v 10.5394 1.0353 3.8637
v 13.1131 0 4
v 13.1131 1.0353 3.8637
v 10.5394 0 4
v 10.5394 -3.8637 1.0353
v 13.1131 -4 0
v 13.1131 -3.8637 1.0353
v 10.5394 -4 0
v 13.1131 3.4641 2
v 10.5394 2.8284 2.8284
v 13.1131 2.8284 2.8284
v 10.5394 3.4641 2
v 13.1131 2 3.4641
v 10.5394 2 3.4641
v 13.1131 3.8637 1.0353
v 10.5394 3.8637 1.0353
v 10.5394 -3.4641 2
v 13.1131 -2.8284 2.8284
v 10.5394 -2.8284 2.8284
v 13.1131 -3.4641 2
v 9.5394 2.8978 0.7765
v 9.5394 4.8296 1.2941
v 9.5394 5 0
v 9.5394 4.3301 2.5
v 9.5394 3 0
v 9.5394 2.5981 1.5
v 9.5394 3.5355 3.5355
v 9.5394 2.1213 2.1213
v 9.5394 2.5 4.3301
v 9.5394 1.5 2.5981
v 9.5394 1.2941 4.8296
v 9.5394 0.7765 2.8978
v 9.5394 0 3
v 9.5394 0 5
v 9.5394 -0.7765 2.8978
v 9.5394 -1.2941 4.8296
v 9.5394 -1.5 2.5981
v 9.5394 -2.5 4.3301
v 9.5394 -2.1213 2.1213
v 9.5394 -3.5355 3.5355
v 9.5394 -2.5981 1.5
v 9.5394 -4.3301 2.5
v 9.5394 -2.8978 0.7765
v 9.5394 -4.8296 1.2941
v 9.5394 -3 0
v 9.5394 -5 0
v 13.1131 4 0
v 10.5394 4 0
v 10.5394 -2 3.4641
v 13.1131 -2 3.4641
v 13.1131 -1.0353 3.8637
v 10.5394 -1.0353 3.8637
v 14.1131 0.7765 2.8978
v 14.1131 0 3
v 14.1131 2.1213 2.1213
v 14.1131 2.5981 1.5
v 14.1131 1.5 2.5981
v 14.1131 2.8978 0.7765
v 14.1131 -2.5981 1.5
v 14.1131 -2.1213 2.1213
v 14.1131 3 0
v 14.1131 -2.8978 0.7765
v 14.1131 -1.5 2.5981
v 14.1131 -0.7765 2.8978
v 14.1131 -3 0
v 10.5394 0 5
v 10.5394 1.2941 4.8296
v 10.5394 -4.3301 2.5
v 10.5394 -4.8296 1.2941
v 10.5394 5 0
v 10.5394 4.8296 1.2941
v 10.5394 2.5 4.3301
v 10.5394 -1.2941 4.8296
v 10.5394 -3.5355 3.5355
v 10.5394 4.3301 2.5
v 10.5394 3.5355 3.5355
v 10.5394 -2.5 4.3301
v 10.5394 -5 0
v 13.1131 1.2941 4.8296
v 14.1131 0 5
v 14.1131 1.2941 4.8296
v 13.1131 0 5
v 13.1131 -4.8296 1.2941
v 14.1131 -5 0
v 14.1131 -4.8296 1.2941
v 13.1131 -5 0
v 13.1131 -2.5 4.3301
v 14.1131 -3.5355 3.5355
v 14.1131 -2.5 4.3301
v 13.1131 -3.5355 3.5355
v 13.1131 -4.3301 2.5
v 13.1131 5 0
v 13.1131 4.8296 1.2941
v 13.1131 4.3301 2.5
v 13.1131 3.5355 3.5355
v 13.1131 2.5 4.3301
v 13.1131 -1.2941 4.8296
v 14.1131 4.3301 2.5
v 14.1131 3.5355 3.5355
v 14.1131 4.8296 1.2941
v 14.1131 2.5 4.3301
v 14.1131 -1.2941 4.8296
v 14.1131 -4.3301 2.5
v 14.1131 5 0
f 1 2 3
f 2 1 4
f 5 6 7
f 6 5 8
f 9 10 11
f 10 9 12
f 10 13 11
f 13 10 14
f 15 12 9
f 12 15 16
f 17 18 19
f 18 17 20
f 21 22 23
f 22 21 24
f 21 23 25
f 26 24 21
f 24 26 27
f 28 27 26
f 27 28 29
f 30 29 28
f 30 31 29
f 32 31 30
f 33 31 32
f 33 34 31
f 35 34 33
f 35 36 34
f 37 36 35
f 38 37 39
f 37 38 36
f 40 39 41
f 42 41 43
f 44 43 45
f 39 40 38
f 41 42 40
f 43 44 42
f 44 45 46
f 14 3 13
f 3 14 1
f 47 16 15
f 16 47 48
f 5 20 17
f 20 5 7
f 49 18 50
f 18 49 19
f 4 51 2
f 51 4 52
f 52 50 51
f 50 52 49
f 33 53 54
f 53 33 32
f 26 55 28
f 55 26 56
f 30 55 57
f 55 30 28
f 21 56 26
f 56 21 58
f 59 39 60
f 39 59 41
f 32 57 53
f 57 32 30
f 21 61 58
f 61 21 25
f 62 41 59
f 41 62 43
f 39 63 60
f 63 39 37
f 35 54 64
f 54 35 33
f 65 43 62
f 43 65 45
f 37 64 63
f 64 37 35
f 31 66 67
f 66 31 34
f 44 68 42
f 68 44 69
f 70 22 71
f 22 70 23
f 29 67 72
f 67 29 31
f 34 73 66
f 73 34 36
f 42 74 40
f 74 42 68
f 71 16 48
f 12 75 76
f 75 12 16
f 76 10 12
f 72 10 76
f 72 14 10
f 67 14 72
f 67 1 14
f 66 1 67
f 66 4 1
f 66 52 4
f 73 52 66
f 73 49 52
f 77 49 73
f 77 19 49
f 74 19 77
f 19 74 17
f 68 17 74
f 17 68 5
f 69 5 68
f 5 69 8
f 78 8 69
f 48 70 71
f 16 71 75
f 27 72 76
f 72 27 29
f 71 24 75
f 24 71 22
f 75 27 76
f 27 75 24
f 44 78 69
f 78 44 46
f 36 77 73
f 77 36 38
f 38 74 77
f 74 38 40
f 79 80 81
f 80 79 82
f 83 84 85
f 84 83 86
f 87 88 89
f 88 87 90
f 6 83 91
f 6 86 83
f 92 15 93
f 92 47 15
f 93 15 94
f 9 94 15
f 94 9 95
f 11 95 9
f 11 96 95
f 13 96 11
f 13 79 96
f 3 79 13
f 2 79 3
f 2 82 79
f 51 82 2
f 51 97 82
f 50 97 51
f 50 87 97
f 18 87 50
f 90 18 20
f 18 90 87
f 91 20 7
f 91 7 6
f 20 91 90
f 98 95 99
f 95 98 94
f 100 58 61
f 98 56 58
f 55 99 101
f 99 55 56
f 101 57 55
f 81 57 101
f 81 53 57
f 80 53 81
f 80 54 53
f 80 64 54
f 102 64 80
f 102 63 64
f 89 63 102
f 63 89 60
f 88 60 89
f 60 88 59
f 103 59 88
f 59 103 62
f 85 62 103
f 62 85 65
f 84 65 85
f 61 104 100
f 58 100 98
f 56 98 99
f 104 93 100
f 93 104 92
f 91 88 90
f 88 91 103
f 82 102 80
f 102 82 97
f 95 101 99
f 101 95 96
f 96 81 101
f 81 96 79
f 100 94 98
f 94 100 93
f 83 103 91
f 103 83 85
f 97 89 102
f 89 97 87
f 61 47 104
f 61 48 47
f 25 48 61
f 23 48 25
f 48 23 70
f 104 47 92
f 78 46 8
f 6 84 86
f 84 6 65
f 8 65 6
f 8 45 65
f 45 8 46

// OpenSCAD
// file: ../build_environments.scad
// build_environments.scad: modules to build level sections
//

module pool(diameter=10.0, wall_height=2.0, step_width=3.0, connections=[])
{
    difference() {
        union() {
        difference() {
            cylinder(h=0.5,r1=diameter+step_width,r2=diameter+step_width,$fn=48);
            translate([0,0,-0.1])
                cylinder(h=0.7,r1=diameter,r2=diameter,$fn=48);
        }
        difference() {
            cylinder(h=wall_height,r1=diameter+step_width+1.0,r2=diameter+step_width+1.0,$fn=48);
            translate([0,0,-0.1])
                cylinder(h=wall_height+0.2,r1=diameter+step_width,r2=diameter+step_width,$fn=48);
        }
        }
    
        for (c = connections)
        {
            rotate([0,90,0]) {
                angle = atan2(c[1],c[0]);
                rotate([-angle,0,0]) {
                    cylinder(h=diameter+5.0,r1=c[2],r2=c[2],$fn=48);
                }
            }
        }
    }
}

module straight(length=10.0, width=2.0, dy1=0.0, dy2=0.0, dz=0.0)
{
    dims = [0, 0, 0, 0, 0, (dz/length)];
    matrix = [
        [ 1, dims[0], dims[1], 0 ],
        [ dims[2], 1, dims[4], 0 ],
        [ dims[5], dims[3], 1, 0 ],
        [ 0, 0, 0, 1 ]
    ];
    multmatrix(matrix)
    difference() {
        translate([dy1,0,0])
        union() {
            rotate([0,90,0]) {
                difference() {
                    cylinder(h=(length-dy1-dy2),r1=width+1.0,r2=width+1.0,$fn=24);
                    translate([0,0,-0.1])
                        cylinder(h=(length-dy1-dy2+0.2),r1=width,r2=width,$fn=24);
                }
                difference() {
                    cylinder(h=1.0,r1=width+2.0,r2=width+2.0,$fn=24);
                    translate([0,0,-0.1])
                        cylinder(h=1.2,r1=width,r2=width,$fn=24);
                }
                translate([0,0,(length-dy1-dy2)-1.0]) {
                    difference() {
                        cylinder(h=1.0,r1=width+2.0,r2=width+2.0,$fn=24);
                        translate([0,0,-0.1])
                            cylinder(h=1.2,r1=width,r2=width,$fn=24);
                    }
                }
            }
        }
        translate([0,0,-(2*width+4.0)/2])
            cube([3*length,3*length,2*width+4.0],center=true);
    }
}

module curve(p0=[0,0], center=[0,0], dir=1, angle=0.0, width=2.0)
{
    radius = sqrt((p0[0]-center[0])*(p0[0]-center[0]) + (p0[1]-center[1])*(p0[1]-center[1]));
    if (dir == 0) {
        difference() {
            rotate([0,0,-90])
            difference() {
                rotate_extrude(angle = angle, convexity = 10, $fn=32)
                    translate([radius, 0, 0])
                        circle(r = width+1.0,$fn=24);
                rotate([0,0,-1.0])
                    rotate_extrude(angle = angle+2.0, convexity = 10, $fn=32)
                        translate([radius, 0, 0])
                            circle(r = width,$fn=24);
            }
            translate([0,0,-(2*width+4.0)/2])
                cube([5*radius,5*radius,2*width+4.0],center=true);
        }
    }
    else {
        difference() {
            rotate([0,0,90])
            difference() {
                rotate_extrude(angle = -angle, convexity = 10, $fn=32)
                    translate([radius, 0, 0])
                        circle(r = width+1.0,$fn=24);
                rotate([0,0,1.0])
                    rotate_extrude(angle = -angle-2.0, convexity = 10, $fn=32)
                        translate([radius, 0, 0])
                            circle(r = width,$fn=24);
            }
            translate([0,0,-(2*width+4.0)/2])
                cube([5*radius,5*radius,2*width+4.0],center=true);
        }
    }

}

// test pool
//pool(diameter=12.0000, wall_height=3.0000, step_width=3.0000, connections=[[0.0000,-26.0000,2.0000], [23.6074,0.0000,2.0000]]);

// test straight, slope
//straight(length=26.0000, width=2.0000, dy1=11.8322, dy2=6.7082, dz=0.0000);
//straight(length=29.1549, width=12.0000, dy1=0.0000, dy2=0.0000, dz=-15.0000);

// test curve
//curve(p0=[23.6074, 0.0000], center=[23.6074, 5.0000], dir=0, angle=60.1011, width=2.0000);
//curve(p0=[33.6426, 12.4219], center=[37.9771, 9.9295], dir=1, angle=120.4627, width=2.0000);
// main file
use <../build_environments.scad>;
straight(length=14.1131, width=3.0000, dy1=9.5394, dy2=0.0000, dz=0.0000);
